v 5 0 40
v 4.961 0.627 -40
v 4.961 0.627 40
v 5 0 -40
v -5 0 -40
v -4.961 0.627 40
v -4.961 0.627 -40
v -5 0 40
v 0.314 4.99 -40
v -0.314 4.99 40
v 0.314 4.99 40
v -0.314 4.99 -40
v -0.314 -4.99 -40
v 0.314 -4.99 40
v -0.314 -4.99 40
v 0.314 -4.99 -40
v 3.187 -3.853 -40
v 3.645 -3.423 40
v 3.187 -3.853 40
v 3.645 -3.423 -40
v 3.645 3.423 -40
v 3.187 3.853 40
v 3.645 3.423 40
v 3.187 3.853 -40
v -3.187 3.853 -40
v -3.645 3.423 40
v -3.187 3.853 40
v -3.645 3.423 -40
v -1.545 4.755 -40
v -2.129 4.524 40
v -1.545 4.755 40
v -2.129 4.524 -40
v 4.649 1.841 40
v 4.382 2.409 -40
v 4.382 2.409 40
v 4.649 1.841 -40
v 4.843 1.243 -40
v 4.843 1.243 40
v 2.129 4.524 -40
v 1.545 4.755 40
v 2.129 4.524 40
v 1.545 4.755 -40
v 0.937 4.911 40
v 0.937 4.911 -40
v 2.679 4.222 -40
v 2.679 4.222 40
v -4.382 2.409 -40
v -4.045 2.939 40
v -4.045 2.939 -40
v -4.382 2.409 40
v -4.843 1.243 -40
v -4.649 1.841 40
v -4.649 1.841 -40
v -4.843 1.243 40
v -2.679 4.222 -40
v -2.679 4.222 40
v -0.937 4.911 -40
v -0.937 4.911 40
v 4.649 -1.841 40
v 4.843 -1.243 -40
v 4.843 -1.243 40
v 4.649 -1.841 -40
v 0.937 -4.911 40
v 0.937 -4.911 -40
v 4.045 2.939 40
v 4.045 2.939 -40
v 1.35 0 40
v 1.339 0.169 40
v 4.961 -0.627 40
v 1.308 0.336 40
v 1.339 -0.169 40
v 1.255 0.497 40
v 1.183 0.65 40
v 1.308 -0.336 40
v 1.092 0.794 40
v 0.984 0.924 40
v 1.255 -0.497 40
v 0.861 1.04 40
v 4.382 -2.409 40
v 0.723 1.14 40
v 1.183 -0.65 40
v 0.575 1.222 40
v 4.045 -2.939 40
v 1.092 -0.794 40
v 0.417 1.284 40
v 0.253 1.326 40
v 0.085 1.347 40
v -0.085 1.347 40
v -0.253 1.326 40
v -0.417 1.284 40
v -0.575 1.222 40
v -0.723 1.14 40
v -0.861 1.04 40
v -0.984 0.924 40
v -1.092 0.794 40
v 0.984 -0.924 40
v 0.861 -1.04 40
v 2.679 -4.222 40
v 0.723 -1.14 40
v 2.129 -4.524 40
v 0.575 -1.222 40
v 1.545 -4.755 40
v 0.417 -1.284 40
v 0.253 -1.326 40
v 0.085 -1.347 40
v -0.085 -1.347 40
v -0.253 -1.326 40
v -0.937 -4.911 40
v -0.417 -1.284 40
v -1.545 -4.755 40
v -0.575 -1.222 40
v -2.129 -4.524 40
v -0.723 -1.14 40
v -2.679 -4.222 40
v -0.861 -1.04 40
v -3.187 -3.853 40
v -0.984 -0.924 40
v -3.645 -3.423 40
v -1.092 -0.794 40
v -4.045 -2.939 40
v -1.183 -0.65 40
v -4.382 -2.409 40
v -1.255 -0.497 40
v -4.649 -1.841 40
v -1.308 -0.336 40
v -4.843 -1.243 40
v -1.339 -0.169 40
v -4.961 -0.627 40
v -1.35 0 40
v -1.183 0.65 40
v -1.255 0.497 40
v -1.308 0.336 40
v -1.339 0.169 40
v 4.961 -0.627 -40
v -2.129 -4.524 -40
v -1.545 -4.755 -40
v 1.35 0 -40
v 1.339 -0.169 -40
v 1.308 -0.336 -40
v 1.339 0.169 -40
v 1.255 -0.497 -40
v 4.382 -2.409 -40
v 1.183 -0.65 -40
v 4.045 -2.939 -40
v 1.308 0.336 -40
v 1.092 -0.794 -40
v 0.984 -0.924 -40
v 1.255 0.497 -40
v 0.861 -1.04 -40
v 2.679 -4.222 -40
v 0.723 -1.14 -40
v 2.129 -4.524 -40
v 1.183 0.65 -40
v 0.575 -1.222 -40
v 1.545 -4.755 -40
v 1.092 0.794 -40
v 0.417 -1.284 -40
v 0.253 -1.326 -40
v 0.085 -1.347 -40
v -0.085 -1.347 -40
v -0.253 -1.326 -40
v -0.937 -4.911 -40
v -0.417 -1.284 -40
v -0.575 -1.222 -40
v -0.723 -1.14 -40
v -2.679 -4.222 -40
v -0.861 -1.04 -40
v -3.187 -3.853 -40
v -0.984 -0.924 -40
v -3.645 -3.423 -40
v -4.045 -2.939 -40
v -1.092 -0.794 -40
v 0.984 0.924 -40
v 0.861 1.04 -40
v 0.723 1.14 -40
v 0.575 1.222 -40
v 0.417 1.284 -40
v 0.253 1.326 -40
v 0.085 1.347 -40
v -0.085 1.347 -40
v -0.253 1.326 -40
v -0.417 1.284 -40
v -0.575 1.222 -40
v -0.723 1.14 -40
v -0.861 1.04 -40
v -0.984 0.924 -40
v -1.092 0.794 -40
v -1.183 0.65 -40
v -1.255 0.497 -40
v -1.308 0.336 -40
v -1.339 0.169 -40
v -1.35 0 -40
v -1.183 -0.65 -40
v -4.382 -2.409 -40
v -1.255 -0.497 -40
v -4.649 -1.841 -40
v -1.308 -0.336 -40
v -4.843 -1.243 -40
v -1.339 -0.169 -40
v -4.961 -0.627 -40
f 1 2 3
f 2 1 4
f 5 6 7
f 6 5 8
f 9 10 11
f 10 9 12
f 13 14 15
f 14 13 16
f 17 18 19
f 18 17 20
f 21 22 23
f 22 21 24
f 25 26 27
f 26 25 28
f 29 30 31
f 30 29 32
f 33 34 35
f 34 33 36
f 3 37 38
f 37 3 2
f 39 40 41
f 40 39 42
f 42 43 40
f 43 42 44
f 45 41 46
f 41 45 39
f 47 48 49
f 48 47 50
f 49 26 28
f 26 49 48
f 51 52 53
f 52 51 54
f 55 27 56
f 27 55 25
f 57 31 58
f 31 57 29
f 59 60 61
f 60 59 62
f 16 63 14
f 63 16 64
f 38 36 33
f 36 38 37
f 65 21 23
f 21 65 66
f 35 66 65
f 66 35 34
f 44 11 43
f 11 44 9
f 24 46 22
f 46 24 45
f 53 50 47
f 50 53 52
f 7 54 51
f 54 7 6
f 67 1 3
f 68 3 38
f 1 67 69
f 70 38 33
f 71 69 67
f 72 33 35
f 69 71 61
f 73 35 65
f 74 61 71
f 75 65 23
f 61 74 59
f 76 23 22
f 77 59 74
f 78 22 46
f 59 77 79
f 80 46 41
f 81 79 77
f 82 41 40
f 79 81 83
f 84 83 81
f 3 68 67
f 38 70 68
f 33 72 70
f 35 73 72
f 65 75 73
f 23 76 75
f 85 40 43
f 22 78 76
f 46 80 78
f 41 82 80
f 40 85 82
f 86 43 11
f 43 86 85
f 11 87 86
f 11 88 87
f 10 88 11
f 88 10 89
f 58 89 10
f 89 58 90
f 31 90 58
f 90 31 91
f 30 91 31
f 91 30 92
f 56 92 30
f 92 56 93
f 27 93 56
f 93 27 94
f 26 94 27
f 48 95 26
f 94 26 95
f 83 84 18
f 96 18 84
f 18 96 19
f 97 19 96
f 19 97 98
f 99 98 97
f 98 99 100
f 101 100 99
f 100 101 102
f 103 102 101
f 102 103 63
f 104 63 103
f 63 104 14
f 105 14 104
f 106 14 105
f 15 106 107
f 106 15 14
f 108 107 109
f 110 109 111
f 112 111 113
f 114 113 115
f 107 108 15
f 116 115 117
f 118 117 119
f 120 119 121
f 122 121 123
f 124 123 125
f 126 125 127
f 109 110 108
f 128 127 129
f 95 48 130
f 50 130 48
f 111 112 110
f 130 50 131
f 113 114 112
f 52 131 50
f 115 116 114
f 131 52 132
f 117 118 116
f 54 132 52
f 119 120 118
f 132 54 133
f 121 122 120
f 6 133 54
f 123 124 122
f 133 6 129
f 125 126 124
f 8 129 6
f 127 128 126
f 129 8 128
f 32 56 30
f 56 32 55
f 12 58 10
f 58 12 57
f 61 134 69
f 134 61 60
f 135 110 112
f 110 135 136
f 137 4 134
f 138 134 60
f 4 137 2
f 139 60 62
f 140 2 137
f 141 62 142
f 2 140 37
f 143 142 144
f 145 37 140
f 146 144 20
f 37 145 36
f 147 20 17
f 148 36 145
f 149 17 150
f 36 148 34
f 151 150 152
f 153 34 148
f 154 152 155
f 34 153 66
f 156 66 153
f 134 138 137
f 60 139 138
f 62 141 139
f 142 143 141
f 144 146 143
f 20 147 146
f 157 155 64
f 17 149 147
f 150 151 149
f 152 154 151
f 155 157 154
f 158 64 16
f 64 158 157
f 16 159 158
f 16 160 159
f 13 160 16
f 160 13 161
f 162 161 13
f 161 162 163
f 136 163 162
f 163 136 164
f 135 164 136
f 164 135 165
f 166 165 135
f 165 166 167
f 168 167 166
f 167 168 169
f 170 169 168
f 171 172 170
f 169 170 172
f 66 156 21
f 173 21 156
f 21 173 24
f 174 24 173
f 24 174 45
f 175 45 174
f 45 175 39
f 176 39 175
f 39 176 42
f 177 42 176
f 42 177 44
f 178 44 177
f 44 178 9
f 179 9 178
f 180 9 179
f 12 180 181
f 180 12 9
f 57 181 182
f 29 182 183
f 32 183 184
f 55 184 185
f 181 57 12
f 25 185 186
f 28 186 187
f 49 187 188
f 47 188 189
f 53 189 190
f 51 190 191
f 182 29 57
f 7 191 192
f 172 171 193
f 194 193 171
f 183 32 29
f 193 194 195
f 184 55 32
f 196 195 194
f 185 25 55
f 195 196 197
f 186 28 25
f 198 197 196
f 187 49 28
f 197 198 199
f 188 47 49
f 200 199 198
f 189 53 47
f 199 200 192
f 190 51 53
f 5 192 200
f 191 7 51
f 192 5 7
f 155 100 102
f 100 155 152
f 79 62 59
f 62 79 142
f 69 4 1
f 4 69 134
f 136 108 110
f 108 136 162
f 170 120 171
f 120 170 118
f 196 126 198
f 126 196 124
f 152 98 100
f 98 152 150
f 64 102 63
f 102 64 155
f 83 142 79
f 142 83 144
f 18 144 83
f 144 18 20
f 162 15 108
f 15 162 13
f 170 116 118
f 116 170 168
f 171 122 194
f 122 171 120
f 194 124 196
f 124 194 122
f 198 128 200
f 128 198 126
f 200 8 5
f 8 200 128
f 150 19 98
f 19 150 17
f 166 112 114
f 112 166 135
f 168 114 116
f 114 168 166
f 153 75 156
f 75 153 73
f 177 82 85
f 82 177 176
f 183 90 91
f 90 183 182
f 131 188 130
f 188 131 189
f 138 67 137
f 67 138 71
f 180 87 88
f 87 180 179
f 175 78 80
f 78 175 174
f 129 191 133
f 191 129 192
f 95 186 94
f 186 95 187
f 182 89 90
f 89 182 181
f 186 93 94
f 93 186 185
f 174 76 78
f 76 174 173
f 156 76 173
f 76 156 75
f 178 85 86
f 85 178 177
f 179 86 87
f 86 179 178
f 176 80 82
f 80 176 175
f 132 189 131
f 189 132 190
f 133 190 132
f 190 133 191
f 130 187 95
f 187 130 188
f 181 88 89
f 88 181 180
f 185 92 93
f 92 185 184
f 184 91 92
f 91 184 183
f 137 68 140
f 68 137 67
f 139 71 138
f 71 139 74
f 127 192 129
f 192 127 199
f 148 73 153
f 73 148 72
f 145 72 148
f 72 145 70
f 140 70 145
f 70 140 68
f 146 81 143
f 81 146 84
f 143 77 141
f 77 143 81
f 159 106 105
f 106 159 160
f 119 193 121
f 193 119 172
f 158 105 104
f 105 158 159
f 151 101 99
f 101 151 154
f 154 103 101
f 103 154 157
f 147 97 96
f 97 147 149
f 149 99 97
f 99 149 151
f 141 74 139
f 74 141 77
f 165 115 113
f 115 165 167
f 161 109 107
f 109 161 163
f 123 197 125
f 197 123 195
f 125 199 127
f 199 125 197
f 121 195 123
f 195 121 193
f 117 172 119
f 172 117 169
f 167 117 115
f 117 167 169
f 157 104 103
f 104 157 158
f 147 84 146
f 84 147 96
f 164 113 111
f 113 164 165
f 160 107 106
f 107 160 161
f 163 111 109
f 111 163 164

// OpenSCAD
$fn = 50;


difference() {
	union() {
		translate(v = [0, 0, -40.0000000000]) {
			cylinder(h = 80, r = 5.0000000000);
		}
	}
	union() {
		translate(v = [0, 0, -100.0000000000]) {
			cylinder(h = 200, r = 1.3500000000);
		}
	}
}
